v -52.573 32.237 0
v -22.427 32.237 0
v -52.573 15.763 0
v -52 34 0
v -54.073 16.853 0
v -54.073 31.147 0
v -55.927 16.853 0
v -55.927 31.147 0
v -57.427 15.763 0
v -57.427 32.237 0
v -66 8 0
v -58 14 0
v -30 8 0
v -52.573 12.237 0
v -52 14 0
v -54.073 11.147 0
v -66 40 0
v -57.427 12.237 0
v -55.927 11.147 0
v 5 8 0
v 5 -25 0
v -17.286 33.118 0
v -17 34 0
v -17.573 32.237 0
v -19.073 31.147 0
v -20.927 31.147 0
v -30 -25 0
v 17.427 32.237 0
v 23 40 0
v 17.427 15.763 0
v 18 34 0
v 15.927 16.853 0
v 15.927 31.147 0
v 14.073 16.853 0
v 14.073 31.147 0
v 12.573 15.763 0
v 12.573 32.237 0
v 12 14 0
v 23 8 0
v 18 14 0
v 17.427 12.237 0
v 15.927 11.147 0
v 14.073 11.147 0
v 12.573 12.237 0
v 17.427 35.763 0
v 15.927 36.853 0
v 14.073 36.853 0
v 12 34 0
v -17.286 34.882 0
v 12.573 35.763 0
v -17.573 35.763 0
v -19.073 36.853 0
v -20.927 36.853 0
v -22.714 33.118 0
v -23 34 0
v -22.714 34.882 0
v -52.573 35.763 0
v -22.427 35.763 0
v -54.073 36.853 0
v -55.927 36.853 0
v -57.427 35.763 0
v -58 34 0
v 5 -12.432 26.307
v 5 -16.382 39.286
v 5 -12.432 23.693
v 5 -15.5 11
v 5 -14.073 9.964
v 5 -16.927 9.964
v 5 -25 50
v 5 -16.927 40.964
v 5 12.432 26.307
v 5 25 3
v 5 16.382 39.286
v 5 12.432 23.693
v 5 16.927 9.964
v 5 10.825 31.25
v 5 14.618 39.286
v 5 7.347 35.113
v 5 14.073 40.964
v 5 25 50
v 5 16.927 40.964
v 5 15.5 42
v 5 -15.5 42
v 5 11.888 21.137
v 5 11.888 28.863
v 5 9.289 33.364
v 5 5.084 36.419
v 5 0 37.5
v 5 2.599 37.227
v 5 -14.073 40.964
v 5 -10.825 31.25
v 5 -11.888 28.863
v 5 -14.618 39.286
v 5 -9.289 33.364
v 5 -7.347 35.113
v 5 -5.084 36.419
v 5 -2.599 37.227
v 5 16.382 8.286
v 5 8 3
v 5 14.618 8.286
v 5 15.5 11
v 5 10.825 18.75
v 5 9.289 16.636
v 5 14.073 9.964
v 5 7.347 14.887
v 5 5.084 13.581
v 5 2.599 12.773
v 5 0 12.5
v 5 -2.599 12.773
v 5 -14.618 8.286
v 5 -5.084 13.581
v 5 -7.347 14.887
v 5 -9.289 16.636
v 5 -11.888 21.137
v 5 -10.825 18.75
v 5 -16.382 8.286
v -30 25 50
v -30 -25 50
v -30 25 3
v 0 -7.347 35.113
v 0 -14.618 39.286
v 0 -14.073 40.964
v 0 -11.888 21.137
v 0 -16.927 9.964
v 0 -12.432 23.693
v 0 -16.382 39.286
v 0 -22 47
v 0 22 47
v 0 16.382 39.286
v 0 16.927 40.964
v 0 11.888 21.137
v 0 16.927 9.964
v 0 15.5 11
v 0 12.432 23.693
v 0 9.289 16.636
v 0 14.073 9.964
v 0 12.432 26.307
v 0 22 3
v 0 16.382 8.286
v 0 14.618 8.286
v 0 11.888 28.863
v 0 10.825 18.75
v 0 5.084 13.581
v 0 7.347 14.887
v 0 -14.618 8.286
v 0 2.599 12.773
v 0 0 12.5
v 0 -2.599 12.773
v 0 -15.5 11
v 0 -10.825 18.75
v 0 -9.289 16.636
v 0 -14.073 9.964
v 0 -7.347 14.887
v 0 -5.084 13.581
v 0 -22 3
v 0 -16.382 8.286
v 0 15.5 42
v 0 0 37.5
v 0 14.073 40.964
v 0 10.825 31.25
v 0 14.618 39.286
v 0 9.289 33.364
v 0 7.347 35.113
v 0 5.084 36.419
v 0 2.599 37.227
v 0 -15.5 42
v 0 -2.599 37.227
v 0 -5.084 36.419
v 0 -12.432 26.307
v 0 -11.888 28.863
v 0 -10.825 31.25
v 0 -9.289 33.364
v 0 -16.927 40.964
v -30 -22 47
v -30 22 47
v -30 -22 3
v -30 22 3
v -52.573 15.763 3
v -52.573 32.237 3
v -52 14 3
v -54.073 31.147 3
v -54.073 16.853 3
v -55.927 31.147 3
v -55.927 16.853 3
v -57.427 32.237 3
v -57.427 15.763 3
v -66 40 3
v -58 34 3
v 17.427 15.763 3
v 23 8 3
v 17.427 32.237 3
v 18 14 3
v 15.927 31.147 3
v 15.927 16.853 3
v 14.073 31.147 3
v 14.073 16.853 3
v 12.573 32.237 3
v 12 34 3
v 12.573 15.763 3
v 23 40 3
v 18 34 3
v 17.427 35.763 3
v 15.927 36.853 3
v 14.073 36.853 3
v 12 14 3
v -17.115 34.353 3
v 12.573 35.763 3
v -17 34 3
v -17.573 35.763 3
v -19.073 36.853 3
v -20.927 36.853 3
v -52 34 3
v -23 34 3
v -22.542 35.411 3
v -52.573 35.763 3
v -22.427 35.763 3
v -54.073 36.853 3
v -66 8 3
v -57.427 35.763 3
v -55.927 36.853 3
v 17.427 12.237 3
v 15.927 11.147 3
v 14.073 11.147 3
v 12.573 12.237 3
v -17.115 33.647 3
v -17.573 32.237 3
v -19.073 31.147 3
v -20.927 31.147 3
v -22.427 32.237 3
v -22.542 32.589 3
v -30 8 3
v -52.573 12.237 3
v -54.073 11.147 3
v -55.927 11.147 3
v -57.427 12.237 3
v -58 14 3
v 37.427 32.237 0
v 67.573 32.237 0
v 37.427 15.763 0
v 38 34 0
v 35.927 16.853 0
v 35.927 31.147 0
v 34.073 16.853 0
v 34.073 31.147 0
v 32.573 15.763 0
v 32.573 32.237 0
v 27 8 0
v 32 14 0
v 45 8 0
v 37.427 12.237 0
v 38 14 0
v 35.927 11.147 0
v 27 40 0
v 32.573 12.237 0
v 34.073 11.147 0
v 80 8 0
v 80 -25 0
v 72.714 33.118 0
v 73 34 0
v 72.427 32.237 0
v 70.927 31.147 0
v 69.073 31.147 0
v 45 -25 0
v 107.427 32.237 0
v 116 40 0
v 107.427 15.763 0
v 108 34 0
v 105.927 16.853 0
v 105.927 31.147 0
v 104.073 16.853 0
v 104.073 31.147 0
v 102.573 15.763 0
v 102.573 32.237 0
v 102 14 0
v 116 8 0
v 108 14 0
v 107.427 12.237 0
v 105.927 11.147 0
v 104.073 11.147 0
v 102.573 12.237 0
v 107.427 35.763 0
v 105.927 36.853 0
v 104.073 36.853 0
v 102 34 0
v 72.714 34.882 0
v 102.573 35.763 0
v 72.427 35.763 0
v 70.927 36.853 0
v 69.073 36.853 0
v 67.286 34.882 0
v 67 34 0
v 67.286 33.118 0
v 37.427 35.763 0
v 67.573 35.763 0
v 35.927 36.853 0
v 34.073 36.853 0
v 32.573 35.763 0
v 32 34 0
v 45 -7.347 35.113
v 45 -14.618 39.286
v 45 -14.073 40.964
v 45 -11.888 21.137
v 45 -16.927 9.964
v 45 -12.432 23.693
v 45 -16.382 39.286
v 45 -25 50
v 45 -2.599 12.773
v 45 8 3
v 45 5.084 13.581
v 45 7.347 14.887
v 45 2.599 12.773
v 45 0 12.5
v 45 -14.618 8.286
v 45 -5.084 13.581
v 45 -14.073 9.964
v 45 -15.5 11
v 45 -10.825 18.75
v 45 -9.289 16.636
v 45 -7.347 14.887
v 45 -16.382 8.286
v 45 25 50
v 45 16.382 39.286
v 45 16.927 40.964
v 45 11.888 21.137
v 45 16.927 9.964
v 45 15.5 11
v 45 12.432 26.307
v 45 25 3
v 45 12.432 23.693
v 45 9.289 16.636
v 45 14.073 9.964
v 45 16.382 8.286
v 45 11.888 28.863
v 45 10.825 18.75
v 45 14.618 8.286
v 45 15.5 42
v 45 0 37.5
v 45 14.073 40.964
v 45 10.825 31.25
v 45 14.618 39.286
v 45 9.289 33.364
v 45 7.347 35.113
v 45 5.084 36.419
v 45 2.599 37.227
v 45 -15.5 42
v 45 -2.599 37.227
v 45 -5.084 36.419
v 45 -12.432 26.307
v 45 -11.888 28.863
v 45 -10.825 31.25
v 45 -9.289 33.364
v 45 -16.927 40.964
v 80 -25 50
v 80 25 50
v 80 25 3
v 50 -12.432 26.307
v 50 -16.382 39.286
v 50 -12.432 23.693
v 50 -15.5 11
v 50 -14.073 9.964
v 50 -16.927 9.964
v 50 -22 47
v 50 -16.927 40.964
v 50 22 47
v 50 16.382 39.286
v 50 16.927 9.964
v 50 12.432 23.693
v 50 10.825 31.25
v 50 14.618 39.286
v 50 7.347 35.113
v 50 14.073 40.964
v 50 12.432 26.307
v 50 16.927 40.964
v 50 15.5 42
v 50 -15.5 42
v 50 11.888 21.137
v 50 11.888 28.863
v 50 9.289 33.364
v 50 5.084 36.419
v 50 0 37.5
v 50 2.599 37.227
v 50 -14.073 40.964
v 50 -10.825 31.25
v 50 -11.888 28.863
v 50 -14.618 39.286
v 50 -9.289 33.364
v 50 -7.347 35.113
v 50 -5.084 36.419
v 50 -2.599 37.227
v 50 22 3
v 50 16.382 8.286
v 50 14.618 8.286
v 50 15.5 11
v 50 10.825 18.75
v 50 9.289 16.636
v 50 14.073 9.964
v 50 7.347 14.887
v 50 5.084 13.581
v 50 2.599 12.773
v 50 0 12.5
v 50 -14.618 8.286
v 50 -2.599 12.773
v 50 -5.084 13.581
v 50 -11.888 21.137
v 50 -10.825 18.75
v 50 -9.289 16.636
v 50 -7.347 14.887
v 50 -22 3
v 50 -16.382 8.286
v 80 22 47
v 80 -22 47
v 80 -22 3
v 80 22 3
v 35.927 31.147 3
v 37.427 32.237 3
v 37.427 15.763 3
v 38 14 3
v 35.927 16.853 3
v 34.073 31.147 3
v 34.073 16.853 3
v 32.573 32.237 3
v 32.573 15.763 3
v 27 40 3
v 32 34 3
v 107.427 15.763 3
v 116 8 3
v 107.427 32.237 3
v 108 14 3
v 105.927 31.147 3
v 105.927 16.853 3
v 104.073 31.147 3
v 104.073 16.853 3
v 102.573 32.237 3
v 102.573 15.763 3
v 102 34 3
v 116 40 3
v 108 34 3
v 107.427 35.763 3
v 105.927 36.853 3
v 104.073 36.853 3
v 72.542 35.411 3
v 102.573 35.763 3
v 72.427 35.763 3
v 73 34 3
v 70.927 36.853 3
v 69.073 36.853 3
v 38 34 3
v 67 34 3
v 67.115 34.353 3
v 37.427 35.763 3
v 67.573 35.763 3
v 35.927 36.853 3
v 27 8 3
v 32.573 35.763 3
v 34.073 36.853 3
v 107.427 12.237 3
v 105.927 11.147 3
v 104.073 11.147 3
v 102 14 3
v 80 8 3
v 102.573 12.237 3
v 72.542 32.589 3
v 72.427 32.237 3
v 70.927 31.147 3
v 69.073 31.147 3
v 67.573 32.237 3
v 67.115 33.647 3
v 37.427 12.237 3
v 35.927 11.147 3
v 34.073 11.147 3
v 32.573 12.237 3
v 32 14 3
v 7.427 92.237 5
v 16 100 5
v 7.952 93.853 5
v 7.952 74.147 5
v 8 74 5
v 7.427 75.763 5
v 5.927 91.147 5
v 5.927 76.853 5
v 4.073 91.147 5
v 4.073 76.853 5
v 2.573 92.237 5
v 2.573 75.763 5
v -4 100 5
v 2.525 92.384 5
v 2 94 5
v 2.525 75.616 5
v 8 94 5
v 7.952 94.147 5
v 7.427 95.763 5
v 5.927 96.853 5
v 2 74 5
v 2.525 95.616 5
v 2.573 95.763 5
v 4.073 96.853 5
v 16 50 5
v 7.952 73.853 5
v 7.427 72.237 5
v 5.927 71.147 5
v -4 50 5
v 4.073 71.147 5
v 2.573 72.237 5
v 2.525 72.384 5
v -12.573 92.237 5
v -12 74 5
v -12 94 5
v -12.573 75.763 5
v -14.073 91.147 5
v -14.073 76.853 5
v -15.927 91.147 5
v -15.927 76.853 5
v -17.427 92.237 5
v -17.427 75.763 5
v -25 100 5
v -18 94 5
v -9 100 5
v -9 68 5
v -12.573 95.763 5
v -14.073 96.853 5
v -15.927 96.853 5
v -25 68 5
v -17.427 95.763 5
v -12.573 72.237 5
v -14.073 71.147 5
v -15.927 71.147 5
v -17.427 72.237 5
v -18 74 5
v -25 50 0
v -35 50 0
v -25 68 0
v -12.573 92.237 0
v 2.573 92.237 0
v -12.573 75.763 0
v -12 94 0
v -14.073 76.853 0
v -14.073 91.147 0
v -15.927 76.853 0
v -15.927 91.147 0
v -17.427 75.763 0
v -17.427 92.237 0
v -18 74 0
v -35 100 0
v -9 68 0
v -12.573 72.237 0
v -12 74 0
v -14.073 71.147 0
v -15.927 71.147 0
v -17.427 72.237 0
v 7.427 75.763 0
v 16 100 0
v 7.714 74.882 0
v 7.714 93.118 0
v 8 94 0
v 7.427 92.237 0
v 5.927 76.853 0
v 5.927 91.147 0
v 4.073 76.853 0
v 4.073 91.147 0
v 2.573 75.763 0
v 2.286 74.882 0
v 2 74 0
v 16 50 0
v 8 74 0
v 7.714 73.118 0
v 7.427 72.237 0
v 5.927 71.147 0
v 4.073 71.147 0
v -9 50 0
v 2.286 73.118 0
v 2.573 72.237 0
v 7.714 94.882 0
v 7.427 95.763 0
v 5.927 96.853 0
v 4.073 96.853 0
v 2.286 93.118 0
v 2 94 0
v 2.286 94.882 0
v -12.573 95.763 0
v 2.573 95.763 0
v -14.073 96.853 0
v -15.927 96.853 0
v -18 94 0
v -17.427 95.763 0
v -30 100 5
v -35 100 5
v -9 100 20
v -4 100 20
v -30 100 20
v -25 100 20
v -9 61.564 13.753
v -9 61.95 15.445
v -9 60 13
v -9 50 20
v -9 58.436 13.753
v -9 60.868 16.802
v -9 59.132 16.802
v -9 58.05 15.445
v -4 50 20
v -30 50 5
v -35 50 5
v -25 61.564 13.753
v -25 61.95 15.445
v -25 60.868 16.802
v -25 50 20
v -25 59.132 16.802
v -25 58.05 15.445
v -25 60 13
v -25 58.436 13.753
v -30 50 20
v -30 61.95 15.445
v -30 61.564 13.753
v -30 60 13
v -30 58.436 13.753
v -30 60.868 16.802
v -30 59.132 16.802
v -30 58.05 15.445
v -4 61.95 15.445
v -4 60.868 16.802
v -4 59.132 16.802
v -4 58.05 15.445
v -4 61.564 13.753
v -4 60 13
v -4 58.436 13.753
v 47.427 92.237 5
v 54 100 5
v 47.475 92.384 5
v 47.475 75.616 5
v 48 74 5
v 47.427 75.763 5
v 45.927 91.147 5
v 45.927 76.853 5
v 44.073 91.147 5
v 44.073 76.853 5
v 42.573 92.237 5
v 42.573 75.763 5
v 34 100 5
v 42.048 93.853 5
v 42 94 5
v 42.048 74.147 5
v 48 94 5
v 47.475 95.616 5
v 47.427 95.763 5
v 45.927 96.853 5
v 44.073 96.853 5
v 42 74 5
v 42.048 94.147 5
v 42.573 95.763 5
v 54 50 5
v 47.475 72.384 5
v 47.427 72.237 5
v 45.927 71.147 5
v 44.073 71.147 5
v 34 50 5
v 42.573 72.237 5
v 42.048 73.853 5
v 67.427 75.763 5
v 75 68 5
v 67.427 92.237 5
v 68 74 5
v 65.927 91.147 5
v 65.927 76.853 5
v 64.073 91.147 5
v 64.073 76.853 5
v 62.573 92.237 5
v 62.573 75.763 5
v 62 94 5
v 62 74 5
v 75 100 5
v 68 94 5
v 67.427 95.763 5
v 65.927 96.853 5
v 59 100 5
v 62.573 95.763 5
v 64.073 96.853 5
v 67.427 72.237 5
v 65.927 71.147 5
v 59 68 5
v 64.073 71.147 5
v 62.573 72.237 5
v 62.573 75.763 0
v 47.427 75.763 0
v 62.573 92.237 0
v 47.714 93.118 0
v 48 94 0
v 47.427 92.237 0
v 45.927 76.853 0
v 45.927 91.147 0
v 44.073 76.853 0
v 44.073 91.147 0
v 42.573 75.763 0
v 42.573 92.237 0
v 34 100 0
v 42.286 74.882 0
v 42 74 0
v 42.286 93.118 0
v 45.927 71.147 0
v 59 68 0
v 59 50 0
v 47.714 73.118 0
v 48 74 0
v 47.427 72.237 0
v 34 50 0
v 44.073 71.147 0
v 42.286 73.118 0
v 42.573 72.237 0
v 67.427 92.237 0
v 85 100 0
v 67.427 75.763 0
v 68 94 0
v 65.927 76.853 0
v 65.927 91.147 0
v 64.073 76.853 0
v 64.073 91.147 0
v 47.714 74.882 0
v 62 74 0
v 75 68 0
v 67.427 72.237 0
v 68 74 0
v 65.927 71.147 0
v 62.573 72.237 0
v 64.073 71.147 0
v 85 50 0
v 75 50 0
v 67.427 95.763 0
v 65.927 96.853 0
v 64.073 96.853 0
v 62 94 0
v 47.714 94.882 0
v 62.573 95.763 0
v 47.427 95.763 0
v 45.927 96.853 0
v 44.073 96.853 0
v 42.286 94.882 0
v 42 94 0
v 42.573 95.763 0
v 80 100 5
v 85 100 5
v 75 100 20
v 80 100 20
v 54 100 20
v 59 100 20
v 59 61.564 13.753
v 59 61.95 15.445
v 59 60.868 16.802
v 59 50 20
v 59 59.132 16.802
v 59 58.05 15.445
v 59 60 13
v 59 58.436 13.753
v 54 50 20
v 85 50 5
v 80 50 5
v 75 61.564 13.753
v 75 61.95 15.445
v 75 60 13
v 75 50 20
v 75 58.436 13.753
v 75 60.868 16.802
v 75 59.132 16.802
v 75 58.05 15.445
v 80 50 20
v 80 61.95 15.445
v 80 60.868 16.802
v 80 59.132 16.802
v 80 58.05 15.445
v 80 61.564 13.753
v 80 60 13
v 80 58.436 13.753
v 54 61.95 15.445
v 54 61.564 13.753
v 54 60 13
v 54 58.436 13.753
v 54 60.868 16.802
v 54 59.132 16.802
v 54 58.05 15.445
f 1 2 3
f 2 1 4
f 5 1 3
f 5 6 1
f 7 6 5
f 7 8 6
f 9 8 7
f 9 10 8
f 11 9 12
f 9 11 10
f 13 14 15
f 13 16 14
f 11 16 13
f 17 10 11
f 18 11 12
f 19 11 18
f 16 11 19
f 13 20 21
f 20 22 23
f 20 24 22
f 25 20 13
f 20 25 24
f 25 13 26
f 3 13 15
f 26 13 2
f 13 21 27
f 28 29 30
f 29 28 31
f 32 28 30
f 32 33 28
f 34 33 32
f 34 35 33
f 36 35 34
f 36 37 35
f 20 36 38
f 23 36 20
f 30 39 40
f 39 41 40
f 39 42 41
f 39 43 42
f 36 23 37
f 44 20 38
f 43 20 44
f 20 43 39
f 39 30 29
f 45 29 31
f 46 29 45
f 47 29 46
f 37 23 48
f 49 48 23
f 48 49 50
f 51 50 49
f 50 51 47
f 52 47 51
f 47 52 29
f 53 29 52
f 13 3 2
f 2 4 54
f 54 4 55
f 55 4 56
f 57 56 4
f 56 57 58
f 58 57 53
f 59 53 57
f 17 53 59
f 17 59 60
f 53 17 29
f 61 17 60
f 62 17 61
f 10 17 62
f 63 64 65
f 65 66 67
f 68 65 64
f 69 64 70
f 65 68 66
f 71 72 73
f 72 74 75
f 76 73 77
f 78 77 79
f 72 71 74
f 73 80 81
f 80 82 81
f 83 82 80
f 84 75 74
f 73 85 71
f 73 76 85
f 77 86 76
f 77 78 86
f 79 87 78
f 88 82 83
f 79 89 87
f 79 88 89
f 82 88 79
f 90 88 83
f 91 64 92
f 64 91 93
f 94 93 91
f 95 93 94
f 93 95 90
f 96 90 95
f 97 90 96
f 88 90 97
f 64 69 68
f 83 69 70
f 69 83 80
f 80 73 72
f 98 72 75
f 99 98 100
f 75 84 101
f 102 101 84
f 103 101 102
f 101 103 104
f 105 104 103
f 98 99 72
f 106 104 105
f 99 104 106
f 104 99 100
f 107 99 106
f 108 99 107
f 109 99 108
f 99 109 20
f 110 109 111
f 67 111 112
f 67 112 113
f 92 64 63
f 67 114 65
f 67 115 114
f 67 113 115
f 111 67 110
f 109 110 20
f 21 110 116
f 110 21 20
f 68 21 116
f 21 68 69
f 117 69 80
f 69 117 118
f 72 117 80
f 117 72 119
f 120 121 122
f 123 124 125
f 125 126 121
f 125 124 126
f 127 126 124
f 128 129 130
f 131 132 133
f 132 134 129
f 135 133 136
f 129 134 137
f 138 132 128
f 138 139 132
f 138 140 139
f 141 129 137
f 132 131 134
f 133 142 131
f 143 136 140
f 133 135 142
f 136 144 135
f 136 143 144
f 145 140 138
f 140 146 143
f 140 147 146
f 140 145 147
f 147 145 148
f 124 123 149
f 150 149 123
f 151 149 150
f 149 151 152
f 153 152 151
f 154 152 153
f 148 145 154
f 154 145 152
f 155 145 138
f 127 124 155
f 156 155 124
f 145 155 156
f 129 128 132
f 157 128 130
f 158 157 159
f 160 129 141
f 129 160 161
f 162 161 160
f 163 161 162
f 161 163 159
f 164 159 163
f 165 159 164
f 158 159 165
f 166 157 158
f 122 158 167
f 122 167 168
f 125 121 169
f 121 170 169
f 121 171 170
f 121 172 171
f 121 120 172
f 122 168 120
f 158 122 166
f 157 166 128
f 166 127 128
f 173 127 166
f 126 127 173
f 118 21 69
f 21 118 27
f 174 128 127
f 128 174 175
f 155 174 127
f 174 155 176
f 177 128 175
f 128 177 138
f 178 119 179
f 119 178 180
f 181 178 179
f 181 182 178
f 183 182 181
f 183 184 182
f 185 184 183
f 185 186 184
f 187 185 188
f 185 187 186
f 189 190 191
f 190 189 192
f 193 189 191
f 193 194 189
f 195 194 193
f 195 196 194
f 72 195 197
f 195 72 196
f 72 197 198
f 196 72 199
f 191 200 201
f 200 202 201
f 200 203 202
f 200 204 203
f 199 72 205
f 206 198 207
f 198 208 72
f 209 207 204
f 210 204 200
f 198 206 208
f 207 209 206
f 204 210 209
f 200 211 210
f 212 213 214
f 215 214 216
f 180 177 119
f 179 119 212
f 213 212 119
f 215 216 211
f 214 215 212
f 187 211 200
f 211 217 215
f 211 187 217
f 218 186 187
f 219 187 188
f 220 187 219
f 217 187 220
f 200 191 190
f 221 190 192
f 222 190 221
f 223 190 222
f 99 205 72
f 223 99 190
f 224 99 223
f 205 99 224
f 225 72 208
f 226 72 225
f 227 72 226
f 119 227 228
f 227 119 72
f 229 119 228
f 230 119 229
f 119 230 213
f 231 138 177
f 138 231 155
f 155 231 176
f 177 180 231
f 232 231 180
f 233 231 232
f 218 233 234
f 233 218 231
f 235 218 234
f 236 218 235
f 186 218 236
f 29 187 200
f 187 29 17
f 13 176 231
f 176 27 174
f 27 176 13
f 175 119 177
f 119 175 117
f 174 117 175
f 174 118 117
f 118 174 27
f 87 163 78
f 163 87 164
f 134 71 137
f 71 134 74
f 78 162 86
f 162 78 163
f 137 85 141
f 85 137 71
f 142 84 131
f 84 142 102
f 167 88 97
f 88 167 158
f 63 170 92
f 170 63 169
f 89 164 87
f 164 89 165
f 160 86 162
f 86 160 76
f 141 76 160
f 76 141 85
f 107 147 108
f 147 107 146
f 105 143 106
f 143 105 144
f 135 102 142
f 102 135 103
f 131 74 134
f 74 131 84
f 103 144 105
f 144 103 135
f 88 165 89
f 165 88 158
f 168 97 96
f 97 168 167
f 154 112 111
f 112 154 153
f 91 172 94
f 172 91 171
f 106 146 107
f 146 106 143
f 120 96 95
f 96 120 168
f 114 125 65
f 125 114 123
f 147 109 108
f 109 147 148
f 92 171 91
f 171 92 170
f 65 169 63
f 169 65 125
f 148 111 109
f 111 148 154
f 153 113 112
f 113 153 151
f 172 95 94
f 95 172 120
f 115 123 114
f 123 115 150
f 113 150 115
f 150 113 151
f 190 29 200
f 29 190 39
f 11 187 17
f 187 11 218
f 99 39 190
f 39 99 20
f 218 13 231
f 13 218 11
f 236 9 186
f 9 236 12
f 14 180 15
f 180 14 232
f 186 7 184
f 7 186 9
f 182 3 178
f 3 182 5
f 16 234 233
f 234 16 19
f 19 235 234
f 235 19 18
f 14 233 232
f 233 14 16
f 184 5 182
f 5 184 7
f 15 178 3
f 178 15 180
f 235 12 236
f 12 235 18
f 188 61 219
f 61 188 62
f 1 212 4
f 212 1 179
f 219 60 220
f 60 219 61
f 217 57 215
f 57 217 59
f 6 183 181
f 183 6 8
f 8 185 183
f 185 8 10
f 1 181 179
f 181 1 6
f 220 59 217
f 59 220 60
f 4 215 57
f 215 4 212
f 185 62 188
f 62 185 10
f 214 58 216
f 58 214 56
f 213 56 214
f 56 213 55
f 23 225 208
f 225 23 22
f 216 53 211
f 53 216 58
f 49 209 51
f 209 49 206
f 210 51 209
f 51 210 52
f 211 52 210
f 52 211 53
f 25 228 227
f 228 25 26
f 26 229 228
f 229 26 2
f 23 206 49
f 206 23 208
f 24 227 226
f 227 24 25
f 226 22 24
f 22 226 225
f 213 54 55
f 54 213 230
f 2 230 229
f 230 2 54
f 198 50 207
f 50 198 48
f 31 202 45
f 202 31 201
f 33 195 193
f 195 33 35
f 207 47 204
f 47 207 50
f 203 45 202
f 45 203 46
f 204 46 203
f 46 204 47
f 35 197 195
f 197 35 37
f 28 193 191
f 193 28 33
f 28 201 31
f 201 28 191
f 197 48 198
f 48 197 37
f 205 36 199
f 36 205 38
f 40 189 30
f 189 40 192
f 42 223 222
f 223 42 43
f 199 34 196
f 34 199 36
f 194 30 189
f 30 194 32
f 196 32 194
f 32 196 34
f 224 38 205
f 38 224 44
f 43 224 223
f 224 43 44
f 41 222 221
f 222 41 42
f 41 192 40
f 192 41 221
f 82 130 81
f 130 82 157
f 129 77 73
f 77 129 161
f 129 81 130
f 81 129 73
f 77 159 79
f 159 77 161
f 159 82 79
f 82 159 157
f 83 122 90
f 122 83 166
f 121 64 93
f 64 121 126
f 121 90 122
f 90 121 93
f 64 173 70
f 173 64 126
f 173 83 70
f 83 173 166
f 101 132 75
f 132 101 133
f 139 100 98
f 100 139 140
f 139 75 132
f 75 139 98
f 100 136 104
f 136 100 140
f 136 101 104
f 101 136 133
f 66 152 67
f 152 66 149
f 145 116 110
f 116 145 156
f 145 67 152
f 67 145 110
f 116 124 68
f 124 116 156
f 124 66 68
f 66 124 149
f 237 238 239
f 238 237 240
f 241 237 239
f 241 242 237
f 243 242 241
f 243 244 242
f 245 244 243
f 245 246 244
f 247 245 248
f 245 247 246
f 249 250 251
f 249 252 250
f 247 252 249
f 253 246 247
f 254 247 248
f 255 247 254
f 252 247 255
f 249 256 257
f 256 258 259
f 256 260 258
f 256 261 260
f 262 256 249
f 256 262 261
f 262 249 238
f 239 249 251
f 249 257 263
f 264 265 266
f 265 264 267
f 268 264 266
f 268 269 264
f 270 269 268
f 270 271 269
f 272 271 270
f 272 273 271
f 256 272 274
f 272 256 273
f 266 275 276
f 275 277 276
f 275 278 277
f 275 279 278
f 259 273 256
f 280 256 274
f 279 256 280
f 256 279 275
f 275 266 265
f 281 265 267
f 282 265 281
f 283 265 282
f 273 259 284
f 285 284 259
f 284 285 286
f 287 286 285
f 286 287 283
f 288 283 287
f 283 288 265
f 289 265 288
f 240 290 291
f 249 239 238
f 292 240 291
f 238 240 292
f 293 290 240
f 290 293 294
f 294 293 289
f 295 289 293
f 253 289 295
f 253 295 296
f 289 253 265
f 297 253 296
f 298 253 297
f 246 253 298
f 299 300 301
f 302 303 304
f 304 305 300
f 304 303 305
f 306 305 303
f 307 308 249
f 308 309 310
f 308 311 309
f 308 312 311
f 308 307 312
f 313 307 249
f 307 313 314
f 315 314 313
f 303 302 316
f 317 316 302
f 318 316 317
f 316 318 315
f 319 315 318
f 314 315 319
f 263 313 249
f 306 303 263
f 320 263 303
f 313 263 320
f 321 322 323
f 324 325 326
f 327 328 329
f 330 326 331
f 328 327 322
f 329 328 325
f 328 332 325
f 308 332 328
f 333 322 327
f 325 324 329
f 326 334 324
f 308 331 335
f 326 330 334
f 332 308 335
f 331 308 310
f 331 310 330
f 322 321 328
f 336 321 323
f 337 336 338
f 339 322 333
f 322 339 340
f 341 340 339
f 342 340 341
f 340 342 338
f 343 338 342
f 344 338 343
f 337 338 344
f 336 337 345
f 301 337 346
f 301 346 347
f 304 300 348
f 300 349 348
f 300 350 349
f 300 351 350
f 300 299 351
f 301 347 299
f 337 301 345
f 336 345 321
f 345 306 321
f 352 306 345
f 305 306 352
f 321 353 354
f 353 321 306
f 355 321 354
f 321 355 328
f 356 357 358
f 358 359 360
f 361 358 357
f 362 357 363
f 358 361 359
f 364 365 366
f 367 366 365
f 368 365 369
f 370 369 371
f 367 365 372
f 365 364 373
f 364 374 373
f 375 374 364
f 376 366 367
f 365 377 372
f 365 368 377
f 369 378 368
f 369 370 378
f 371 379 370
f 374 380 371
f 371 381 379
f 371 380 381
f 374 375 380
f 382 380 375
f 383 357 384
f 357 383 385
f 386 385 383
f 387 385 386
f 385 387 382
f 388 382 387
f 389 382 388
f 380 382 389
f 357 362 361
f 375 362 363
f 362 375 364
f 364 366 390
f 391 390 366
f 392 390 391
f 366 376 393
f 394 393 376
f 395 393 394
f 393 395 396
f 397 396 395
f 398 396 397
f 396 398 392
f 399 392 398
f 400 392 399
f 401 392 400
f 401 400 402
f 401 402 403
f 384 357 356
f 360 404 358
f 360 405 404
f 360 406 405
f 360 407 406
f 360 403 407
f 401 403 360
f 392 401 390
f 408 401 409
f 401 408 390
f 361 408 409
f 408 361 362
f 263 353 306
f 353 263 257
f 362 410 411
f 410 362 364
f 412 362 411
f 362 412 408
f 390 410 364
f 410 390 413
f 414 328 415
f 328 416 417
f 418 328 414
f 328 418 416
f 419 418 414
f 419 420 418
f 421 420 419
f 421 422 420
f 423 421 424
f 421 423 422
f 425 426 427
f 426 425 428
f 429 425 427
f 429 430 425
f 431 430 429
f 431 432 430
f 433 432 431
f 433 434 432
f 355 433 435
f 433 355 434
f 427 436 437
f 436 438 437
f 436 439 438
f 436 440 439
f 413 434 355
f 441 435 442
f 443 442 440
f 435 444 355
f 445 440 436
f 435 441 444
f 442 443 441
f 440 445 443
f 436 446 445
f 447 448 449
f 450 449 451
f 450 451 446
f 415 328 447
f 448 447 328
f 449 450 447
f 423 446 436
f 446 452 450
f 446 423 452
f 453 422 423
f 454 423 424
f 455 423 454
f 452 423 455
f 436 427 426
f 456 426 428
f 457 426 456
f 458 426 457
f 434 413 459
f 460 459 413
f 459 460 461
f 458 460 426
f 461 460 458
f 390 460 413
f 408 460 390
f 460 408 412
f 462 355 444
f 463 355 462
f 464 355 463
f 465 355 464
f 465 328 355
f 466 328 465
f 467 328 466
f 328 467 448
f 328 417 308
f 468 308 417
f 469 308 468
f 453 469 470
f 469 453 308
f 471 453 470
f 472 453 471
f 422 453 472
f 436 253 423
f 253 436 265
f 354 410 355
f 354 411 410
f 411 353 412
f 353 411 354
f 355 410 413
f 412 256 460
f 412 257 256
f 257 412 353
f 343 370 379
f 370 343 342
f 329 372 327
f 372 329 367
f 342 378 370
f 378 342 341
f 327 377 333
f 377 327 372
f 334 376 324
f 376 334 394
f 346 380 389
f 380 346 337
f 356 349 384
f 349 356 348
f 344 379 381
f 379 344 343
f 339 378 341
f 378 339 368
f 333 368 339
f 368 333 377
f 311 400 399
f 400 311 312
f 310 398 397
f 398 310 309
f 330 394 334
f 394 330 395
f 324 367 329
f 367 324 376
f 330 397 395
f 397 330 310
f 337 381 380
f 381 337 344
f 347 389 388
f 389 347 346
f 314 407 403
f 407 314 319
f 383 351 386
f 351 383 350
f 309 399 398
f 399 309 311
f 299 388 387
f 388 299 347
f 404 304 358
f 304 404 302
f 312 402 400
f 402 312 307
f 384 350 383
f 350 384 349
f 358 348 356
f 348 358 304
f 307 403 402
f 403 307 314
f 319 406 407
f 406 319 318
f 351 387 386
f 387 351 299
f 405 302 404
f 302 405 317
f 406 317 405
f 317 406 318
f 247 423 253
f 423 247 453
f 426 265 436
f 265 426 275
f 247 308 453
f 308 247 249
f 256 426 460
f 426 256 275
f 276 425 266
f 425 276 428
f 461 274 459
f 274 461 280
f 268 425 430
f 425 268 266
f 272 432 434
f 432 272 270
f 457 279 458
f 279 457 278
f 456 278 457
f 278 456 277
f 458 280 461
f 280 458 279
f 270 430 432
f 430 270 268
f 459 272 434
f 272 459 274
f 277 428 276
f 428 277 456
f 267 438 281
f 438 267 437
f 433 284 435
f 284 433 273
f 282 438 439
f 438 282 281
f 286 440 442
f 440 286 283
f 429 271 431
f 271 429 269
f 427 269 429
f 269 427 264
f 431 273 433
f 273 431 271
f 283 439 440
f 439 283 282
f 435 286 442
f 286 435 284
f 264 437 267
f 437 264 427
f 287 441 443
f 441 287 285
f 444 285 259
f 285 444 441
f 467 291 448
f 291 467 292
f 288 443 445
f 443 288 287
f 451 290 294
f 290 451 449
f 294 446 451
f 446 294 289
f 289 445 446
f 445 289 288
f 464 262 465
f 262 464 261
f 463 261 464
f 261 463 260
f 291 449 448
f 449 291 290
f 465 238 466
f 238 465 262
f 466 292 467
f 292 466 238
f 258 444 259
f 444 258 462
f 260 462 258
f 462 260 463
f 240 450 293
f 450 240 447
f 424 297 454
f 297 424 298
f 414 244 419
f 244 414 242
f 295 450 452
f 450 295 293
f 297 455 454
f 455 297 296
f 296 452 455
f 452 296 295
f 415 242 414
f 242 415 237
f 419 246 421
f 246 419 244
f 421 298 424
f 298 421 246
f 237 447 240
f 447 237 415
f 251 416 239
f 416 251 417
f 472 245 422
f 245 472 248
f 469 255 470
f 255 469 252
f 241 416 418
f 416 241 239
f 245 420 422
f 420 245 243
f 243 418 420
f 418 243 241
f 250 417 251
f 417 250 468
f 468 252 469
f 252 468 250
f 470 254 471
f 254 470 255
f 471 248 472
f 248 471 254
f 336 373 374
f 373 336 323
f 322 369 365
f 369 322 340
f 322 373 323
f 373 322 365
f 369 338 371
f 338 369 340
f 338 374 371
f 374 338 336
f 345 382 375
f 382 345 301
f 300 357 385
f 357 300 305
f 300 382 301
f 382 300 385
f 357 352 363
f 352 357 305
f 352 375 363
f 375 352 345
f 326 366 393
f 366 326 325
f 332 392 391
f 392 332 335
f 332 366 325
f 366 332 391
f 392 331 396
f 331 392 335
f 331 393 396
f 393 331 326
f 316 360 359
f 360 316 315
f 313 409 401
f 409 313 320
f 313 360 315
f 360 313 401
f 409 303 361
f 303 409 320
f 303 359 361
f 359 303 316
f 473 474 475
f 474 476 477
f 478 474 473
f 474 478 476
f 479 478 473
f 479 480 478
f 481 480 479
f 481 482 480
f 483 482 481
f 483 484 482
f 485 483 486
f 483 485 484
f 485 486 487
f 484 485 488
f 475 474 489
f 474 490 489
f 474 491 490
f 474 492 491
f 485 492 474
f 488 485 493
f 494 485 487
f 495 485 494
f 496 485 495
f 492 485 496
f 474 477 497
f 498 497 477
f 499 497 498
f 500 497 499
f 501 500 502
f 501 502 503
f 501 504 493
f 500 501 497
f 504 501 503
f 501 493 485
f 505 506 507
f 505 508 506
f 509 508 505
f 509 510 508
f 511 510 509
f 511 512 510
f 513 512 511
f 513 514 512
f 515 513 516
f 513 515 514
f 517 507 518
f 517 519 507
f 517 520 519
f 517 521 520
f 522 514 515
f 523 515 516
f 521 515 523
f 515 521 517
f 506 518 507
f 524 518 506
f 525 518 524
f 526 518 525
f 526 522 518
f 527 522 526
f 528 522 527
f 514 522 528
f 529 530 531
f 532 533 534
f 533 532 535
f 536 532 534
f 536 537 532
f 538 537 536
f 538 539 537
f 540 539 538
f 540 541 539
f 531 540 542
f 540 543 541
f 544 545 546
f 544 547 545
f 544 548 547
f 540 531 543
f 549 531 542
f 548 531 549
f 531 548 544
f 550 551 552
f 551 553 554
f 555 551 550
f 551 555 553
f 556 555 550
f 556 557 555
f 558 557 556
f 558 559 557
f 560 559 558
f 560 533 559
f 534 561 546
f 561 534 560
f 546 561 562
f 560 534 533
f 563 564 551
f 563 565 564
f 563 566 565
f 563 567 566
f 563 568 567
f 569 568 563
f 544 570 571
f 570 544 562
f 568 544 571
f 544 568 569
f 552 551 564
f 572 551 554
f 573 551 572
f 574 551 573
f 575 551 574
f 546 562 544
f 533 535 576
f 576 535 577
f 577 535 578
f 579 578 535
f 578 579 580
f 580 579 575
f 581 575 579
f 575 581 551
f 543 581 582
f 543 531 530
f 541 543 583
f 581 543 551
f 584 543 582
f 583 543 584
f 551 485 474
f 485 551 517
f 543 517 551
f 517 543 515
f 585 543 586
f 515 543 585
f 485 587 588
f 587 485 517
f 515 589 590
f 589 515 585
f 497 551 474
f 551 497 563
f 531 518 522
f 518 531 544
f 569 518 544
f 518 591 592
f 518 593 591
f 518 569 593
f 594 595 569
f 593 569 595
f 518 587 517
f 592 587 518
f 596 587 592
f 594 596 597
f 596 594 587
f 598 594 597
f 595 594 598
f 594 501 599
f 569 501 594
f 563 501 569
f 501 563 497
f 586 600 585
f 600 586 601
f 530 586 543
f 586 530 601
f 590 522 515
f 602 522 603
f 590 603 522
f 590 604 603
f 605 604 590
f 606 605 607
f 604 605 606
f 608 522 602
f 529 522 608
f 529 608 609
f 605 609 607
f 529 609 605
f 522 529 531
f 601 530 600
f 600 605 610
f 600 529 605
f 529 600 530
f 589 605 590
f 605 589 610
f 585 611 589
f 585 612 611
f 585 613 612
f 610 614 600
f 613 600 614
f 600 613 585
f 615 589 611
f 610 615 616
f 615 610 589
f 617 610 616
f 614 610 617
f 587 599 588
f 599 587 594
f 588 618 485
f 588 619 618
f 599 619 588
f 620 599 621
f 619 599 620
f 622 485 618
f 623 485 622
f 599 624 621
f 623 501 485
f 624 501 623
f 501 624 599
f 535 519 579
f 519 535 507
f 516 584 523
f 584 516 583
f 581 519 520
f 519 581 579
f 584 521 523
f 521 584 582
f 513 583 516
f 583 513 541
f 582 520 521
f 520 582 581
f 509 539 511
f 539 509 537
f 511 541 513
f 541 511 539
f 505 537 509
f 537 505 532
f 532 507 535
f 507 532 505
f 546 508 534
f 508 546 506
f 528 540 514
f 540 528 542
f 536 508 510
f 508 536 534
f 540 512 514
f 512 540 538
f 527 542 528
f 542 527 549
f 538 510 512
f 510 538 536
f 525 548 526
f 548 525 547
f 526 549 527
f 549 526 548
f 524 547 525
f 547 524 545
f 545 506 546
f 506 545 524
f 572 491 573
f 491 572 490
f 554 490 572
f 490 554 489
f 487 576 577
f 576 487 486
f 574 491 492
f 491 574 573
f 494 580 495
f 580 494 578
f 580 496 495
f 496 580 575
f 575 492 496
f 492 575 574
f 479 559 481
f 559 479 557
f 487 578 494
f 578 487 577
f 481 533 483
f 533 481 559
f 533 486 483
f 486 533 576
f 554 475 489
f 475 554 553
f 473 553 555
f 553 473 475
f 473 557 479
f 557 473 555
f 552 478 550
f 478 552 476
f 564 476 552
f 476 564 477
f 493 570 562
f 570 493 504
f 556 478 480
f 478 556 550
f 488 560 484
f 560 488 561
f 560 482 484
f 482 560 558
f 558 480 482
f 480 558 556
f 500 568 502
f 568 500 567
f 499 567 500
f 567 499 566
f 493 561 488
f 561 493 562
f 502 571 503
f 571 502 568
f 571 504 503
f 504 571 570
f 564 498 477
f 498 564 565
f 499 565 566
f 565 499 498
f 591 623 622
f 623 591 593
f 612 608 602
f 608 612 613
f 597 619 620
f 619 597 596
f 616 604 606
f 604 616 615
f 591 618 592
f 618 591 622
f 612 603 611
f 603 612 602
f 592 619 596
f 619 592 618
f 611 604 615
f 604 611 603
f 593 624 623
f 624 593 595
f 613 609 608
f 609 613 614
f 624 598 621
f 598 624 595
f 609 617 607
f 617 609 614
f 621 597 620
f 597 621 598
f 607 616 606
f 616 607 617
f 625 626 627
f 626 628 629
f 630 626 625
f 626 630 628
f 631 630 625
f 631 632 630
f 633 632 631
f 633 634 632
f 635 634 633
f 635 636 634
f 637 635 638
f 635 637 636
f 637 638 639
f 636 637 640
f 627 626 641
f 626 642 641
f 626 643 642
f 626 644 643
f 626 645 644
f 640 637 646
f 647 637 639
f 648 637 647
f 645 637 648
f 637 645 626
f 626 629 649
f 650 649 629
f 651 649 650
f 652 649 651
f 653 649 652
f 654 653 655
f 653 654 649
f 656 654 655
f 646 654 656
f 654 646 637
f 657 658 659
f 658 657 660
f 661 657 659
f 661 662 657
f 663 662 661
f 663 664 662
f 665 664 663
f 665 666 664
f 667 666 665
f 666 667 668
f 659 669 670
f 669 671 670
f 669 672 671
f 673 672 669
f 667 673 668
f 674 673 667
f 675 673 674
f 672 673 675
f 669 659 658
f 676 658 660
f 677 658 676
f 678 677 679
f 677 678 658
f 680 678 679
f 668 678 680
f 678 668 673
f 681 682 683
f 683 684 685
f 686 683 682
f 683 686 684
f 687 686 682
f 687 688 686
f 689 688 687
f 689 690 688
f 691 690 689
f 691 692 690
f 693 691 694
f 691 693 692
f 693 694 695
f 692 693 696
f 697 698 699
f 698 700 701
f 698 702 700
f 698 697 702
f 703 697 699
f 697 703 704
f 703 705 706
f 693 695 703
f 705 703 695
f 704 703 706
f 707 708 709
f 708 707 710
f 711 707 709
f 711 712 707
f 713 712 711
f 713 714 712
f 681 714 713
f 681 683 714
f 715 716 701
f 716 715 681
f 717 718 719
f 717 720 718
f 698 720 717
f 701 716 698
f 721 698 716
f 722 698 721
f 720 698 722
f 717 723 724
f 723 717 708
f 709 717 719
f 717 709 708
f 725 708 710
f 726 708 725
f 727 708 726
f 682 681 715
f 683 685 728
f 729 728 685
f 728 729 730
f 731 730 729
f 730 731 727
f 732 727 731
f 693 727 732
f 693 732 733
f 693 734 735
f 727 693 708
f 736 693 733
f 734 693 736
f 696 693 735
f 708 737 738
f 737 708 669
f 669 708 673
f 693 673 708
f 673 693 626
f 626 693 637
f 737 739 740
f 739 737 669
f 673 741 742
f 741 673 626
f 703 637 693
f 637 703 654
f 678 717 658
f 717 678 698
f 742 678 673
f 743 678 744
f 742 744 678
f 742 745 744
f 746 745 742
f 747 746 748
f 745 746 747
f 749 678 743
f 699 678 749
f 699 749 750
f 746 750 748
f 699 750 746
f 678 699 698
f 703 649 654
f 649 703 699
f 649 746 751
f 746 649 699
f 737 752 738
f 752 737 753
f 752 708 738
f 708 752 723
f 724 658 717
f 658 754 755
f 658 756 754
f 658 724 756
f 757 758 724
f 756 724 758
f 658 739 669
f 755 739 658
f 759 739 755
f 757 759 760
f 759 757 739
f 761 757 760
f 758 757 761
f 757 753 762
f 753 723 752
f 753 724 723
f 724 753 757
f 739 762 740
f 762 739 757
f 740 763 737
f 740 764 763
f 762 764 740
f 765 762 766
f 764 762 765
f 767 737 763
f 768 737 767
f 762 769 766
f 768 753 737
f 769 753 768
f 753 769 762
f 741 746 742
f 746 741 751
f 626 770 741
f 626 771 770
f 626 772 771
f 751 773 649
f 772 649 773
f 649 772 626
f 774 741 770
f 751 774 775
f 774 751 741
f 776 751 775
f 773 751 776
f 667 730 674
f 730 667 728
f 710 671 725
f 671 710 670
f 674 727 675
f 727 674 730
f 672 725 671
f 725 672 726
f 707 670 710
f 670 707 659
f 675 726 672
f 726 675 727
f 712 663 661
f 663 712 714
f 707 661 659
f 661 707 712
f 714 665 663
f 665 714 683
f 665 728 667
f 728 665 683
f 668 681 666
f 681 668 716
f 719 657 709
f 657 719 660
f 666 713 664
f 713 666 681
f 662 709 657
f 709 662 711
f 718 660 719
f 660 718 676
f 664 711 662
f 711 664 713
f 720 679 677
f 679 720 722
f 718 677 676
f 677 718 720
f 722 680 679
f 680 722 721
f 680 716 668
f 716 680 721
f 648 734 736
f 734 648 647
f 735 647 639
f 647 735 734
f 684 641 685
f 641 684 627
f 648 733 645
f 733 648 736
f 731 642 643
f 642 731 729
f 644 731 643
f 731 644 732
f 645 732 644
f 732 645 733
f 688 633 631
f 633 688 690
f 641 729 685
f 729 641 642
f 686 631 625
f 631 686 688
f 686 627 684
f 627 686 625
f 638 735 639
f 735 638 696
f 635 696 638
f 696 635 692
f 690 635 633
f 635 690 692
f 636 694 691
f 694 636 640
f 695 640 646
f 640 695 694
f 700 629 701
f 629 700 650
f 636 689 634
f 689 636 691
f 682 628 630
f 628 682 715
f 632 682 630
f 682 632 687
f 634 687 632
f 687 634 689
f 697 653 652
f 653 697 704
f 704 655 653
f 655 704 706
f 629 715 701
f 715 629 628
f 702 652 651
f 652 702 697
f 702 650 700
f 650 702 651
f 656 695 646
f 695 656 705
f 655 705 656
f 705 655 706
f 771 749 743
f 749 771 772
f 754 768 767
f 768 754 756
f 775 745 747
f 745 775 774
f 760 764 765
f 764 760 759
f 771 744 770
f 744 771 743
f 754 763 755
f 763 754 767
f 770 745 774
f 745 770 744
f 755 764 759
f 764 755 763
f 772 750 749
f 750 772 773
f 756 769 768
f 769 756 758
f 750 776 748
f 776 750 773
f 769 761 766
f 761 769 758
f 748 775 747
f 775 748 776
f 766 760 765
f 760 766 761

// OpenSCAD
// file: y-motor-corner.scad
module y_motor_corner(is_left) {
    k = is_left?1:0;
    mirror([k,0,0])
    difference() {
        union() {
            difference() {
                union() {
                    translate([-25,-25,0]) cube([50,50,5]);
                    translate([22,-25,-45]) cube([3,50,50]);
                    translate([-25,-25,-45]) cube([50,3,50]);
                    translate([-25,22,-45]) cube([50,3,50]);
                    translate([-25,-25,-65]) cube([3,65,70]);
                };
                translate([-50,-30,-130]) rotate([0,0,0]) cube([100,100,100]);
                translate([0,0, -50]) rotate([0,0,0]) cylinder(d=25, h=100);
            };
            translate([-25,8,-66]) cube([3,32,89]);

        };
        translate([-30,14,-55]) rotate([0,90,0]) cylinder(r=3, h=10);
        translate([-30,34,-55]) rotate([0,90,0]) cylinder(r=3, h=10);
        translate([-30,34,-20]) rotate([0,90,0]) cylinder(r=3, h=10);
        translate([-30,34, 15]) rotate([0,90,0]) cylinder(r=3, h=10);
        translate([-30, 14, 15]) rotate([0,90,0]) cylinder(r=3, h=10);
        translate([15.5, 15.5, -5]) rotate([0,0,0]) cylinder(d=3, h=12);
        translate([15.5, -15.5, -5]) rotate([0,0,0]) cylinder(d=3, h=12);
        translate([-15.5, 15.5, -5]) rotate([0,0,0]) cylinder(d=3, h=12);
        translate([-15.5, -15.5, -5]) rotate([0,0,0]) cylinder(d=3, h=12);

    }
}
// file: y-idler-corner.scad
module y_idler_corner(is_left) {
    k = is_left?1:0;
    mirror([k,0,0])
    difference() {
        union() {
            translate([10,  8,-16])  cube([5,32,42]);
            translate([10,-10,-16]) cube([5,48,25]);
            translate([10,-10,25])  cube([5,50,10]);
            translate([-5,-10,25])  cube([20,50,5]);
            translate([-5,-10,4])  cube([20,50,5]);

        };
        translate([9, 34, 15]) rotate([0,90,0]) cylinder(r=3, h=12);
        translate([9, 14, 15]) rotate([0,90,0]) cylinder(r=3, h=12);
        translate([9, 34, -5]) rotate([0,90,0]) cylinder(r=3, h=12);
        translate([9, 14, -5]) rotate([0,90,0]) cylinder(r=3, h=12);
        translate([-5]) cylinder(d=4, h=40);
    }
}
// main file
include <y-idler-corner.scad>
include <y-motor-corner.scad>

translate([0,0,25]) rotate([0,90,0]) y_motor_corner(true);
translate([50,0,25]) rotate([0,-90,0]) y_motor_corner(false);
translate([0,60,15]) rotate([0,-90,0]) y_idler_corner(true);
translate([50,60,15]) rotate([0,90,0]) y_idler_corner(false);
